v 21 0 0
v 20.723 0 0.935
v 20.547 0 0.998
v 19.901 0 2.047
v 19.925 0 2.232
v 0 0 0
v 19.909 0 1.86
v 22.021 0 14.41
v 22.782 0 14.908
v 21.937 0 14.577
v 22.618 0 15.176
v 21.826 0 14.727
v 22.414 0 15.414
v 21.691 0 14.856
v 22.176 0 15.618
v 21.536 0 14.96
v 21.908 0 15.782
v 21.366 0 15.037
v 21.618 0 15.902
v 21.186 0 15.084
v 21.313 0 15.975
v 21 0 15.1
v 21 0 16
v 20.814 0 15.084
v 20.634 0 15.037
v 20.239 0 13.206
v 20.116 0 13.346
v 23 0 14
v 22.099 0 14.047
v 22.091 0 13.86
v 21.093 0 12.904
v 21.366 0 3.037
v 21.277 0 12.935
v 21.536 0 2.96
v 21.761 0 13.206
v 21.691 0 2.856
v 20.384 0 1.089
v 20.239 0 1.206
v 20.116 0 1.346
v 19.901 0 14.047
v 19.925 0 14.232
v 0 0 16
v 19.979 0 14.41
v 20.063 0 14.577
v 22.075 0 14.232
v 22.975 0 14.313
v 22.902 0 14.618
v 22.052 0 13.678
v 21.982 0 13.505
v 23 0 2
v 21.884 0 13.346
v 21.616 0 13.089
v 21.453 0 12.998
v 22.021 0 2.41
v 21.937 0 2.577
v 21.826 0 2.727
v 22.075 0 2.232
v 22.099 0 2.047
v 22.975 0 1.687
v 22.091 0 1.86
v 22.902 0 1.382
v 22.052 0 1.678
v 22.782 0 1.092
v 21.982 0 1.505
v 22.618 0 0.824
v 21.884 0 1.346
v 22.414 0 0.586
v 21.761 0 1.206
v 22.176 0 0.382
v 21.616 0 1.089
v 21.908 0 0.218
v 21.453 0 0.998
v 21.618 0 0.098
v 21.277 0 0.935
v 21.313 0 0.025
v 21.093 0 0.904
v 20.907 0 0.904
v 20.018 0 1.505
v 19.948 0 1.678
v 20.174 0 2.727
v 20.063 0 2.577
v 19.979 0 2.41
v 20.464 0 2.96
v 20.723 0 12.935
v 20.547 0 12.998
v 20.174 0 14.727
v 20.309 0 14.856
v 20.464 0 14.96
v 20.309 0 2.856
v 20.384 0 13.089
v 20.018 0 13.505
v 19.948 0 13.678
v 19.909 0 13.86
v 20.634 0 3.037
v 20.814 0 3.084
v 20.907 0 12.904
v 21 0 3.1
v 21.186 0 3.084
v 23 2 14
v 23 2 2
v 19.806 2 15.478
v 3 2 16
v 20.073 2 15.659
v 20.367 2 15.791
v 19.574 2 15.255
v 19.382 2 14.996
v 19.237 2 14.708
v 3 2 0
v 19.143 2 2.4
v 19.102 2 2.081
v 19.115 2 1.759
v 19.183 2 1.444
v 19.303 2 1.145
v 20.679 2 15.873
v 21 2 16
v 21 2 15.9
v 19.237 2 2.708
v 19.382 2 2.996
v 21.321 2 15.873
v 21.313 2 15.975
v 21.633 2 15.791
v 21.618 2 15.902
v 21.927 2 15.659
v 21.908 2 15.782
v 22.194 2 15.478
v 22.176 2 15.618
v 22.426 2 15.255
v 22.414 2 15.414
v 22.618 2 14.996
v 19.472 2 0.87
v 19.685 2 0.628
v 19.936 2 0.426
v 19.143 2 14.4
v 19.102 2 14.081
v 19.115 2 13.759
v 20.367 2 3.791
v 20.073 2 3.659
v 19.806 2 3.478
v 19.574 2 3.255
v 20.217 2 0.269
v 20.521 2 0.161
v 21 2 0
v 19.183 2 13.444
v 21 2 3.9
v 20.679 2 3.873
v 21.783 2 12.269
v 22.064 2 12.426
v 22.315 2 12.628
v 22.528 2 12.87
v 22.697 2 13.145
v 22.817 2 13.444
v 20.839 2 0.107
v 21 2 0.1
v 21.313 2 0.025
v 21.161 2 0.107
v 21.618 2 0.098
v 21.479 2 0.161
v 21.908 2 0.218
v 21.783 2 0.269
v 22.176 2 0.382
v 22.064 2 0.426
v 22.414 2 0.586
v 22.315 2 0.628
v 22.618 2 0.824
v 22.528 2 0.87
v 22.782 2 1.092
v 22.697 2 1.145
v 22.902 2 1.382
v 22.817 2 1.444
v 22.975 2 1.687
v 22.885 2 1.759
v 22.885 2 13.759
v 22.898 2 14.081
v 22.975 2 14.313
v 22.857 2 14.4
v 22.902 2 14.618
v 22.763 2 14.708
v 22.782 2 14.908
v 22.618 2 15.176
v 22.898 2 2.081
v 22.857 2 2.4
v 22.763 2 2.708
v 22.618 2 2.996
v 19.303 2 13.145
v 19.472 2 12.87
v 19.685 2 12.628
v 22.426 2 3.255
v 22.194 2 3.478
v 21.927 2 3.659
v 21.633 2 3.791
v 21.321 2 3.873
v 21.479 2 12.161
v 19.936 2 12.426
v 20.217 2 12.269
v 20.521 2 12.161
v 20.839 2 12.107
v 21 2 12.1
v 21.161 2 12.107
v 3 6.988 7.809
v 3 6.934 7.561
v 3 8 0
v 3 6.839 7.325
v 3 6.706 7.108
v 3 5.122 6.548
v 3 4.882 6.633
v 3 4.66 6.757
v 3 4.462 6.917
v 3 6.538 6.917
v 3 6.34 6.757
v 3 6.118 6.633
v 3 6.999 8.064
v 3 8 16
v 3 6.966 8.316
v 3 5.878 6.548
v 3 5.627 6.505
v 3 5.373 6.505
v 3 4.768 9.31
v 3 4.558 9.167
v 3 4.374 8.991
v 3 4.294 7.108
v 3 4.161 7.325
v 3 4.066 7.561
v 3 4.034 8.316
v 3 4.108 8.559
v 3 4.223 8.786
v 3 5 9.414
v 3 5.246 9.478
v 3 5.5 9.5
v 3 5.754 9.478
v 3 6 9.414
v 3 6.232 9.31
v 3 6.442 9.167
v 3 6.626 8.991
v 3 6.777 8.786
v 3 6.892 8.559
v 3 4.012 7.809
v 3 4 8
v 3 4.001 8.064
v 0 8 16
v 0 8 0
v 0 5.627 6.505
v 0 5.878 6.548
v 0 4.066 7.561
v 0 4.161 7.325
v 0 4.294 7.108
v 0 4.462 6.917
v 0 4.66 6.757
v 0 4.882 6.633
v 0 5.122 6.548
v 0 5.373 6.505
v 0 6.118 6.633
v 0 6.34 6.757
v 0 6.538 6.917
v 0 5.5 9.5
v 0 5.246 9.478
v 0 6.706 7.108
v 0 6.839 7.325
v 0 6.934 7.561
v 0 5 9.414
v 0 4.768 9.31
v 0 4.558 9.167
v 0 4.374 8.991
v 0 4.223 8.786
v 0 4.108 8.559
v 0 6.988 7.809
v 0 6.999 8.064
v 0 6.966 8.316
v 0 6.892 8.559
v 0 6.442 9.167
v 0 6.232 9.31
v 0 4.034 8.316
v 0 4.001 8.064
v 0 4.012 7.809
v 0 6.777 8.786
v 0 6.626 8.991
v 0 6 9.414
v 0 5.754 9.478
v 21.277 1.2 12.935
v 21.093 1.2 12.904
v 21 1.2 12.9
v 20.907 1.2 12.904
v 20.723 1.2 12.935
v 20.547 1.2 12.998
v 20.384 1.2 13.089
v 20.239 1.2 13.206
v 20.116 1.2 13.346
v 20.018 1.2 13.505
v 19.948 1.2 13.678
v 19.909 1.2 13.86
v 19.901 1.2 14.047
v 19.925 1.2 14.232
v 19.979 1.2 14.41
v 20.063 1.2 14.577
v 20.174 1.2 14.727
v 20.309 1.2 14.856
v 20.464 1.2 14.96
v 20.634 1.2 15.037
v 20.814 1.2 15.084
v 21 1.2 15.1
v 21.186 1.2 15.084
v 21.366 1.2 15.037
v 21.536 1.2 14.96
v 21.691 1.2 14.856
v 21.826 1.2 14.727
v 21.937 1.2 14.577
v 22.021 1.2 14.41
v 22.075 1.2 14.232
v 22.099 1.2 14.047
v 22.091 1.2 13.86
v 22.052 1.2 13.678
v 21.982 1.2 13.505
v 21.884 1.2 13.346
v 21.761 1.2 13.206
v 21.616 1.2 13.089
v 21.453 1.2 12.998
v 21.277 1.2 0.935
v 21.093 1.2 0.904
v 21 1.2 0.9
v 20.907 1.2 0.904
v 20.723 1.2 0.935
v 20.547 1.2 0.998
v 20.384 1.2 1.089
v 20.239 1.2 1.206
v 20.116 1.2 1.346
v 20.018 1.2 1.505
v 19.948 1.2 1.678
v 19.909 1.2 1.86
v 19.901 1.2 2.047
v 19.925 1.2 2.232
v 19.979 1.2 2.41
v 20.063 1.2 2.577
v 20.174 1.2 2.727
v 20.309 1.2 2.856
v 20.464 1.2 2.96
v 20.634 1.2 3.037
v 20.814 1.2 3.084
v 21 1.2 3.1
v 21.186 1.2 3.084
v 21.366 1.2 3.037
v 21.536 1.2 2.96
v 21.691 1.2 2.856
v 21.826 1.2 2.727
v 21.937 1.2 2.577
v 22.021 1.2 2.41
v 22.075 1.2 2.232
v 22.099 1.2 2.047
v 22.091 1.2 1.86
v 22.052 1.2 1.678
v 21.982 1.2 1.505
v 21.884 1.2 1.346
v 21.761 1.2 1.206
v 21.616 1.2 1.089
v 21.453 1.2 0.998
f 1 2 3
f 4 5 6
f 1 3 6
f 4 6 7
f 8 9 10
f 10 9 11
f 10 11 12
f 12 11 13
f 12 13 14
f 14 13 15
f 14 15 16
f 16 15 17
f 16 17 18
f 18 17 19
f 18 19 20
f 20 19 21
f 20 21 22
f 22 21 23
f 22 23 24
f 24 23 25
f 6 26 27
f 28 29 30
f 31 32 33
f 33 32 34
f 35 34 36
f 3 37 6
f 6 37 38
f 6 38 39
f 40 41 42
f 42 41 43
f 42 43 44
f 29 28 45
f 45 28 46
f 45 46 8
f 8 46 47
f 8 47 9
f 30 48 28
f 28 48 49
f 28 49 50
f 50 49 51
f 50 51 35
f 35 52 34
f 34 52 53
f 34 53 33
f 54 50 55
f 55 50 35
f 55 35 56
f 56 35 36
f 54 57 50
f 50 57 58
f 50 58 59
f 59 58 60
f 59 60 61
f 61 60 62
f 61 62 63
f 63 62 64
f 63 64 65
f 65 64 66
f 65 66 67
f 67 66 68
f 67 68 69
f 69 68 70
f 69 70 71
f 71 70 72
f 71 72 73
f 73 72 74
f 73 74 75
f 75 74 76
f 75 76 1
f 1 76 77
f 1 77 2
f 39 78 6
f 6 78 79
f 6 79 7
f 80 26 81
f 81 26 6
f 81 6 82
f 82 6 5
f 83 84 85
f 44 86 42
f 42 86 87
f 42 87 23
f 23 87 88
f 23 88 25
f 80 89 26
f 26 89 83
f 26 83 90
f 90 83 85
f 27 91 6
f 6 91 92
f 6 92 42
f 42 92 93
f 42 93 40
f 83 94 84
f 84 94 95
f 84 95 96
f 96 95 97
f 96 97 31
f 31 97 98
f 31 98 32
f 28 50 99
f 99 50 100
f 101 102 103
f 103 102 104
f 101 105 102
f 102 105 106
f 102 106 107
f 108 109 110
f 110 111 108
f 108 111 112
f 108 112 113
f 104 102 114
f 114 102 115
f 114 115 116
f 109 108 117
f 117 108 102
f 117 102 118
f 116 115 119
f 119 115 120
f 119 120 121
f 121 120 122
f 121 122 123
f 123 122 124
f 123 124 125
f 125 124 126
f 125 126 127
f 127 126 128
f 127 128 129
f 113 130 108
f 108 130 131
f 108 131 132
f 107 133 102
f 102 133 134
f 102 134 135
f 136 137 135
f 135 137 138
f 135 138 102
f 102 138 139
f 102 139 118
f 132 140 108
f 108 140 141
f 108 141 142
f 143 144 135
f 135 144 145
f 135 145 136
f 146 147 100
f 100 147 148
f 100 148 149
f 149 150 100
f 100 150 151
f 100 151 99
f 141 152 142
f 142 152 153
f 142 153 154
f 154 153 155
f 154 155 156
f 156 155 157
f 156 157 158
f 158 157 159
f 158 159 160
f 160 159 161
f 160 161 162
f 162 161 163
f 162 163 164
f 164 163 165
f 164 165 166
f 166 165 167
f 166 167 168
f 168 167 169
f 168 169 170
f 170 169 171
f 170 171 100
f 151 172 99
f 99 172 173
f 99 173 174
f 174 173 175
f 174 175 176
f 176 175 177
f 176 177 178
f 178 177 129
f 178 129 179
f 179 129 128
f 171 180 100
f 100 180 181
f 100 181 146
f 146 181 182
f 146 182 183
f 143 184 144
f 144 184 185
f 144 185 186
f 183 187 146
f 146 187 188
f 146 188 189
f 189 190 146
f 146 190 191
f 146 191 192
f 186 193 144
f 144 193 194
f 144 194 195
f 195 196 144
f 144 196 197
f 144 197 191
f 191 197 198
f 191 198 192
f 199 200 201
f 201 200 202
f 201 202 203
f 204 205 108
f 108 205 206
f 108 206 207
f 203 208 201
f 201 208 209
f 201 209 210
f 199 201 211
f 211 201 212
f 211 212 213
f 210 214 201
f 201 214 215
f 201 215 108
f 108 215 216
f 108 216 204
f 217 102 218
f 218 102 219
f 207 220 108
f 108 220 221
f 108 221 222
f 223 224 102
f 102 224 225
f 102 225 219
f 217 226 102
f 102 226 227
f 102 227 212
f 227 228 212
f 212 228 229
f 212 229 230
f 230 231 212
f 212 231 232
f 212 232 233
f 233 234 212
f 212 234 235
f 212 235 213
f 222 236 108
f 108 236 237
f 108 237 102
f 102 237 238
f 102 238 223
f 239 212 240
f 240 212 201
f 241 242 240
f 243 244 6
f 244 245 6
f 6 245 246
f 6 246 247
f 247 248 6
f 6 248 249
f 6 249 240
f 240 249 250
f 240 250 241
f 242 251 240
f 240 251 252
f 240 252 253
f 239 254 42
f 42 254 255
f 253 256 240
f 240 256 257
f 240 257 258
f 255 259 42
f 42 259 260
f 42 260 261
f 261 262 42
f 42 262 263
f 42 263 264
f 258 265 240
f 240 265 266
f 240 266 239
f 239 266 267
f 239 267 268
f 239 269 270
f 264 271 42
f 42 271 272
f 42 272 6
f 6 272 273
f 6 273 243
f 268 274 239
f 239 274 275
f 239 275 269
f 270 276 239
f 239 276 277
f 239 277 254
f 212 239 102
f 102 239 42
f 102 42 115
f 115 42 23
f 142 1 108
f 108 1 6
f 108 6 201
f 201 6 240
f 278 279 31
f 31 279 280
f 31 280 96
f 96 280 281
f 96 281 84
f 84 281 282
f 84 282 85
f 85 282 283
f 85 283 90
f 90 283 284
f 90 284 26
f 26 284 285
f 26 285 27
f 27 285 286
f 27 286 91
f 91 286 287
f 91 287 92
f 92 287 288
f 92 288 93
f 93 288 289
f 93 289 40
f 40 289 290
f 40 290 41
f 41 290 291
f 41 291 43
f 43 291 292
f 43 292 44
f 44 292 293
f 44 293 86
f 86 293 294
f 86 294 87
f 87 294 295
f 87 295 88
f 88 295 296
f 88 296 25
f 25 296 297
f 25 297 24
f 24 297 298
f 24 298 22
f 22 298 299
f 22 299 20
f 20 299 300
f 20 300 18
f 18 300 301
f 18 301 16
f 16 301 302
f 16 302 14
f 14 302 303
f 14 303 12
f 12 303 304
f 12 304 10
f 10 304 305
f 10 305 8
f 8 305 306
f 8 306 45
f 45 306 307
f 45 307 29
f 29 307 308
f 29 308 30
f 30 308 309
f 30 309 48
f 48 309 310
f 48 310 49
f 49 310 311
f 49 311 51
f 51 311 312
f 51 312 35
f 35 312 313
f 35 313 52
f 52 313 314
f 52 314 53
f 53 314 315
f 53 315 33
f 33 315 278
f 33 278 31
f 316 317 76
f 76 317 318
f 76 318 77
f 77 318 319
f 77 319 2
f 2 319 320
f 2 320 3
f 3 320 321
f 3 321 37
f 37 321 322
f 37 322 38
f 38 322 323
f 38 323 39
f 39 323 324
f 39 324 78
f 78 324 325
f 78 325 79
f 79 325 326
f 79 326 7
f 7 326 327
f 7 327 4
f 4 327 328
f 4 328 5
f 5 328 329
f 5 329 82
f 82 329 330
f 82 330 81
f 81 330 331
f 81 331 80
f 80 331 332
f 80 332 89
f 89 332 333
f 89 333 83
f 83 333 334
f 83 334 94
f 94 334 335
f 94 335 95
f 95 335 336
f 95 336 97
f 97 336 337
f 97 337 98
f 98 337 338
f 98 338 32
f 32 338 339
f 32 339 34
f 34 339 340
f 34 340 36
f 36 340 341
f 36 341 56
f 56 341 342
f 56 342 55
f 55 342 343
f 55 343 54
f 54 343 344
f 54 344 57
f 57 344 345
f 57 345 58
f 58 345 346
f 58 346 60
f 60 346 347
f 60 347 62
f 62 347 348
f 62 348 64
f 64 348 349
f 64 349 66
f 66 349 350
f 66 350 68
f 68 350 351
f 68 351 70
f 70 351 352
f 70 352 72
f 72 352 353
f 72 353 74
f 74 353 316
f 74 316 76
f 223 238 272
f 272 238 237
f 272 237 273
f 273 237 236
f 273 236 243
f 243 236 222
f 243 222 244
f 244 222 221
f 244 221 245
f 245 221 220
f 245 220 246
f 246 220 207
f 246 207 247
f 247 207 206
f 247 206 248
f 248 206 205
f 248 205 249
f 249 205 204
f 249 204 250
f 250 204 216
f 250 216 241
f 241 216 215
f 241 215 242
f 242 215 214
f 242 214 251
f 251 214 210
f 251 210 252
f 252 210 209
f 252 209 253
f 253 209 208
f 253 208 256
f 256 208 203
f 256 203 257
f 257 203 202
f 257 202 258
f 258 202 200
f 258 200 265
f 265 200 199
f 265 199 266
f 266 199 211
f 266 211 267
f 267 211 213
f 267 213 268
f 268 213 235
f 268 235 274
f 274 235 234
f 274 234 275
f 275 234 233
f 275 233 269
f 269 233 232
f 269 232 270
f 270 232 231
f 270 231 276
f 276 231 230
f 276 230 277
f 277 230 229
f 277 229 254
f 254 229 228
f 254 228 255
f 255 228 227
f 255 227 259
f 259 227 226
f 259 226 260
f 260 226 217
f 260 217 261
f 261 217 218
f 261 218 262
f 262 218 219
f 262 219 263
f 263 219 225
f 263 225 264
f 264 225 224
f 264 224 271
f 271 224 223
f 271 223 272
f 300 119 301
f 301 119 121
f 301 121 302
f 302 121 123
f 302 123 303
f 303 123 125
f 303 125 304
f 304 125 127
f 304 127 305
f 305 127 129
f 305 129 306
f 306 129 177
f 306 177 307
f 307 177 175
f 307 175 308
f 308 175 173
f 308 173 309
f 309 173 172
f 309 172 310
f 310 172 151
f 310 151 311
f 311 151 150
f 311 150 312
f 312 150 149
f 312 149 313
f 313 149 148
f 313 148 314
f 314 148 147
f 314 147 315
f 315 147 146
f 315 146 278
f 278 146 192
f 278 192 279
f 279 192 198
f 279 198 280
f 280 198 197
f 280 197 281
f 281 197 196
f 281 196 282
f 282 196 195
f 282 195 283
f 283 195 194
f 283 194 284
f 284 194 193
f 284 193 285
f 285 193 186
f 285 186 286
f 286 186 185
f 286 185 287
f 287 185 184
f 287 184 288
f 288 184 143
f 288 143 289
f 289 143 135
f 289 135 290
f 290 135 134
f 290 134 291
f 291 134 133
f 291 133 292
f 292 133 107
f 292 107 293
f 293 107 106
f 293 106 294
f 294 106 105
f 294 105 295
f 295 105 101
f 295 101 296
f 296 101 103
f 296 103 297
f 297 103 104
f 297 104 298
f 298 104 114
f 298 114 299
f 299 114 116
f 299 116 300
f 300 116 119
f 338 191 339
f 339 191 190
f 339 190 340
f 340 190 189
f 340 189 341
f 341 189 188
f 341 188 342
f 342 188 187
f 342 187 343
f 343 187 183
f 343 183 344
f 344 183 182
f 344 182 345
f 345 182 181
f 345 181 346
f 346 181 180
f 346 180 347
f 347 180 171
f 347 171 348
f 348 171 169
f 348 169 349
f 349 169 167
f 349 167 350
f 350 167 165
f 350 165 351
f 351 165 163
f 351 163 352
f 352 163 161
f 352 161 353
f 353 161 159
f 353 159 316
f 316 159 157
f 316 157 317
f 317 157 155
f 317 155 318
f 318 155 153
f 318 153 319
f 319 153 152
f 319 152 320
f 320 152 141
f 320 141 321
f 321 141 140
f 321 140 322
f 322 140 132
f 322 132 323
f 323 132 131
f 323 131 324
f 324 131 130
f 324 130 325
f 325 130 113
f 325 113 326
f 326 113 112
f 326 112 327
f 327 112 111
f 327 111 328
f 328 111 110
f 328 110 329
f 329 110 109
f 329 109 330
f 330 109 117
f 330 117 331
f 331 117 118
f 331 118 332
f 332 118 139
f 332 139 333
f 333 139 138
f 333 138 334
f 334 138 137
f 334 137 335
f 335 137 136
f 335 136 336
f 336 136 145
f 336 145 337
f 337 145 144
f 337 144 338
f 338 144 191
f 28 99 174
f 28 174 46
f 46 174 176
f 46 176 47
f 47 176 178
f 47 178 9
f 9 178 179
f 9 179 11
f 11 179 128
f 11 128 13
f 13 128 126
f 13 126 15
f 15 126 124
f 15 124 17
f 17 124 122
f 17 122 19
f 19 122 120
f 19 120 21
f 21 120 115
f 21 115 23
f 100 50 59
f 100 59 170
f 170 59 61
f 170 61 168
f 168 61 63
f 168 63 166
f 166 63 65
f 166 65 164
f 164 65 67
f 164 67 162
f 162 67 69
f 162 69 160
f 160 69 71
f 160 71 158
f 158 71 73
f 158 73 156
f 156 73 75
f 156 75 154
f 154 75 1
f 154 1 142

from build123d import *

# Parameters (mm, degrees)
BOSS_EXTRUDE1_DEPTH = 16
SKETCH2_R           = 1.1
CUT_EXTRUDE1_DEPTH  = 2
SKETCH3_R           = 1.5
CUT_EXTRUDE2_DEPTH  = 24
CHAMFER1_SIZE       = 0.8
FILLET1_R           = 2


with BuildPart() as part:
    # Sketch1 → Boss-Extrude1 (new body)
    with BuildSketch(Plane.XY):
        Polygon((0, 0), (0, 8), (3, 8), (3, 2), (23, 2), (23, 0), align=None)
    extrude(amount=BOSS_EXTRUDE1_DEPTH)

    # Sketch2 → Cut-Extrude1 (cut)
    with BuildSketch(Plane(origin=(0, 2, 0), x_dir=(1, 0, 0), z_dir=(0, 1, 0))):
        with Locations((21, -2)):
            Circle(SKETCH2_R)
        with Locations((21, -14)):
            Circle(SKETCH2_R)
    extrude(amount=-CUT_EXTRUDE1_DEPTH, mode=Mode.SUBTRACT)

    # Sketch3 → Cut-Extrude2 (cut, through all)
    with BuildSketch(Plane.ZY):
        with Locations((8, 5.5)):
            Circle(SKETCH3_R)
    extrude(amount=-CUT_EXTRUDE2_DEPTH, mode=Mode.SUBTRACT)

    # Chamfer1
    chamfer1_edges = [part.edges().sort_by_distance(p)[0] for p in [
        (19.9, 2, 2),
        (19.9, 2, 14),
    ]]
    chamfer(chamfer1_edges, length=CHAMFER1_SIZE)

    # Fillet1
    fillet1_edges = [part.edges().sort_by_distance(p)[0] for p in [
        (23, 1, 16),
        (23, 1, 0),
    ]]
    fillet(fillet1_edges, radius=FILLET1_R)


solid = part.part
